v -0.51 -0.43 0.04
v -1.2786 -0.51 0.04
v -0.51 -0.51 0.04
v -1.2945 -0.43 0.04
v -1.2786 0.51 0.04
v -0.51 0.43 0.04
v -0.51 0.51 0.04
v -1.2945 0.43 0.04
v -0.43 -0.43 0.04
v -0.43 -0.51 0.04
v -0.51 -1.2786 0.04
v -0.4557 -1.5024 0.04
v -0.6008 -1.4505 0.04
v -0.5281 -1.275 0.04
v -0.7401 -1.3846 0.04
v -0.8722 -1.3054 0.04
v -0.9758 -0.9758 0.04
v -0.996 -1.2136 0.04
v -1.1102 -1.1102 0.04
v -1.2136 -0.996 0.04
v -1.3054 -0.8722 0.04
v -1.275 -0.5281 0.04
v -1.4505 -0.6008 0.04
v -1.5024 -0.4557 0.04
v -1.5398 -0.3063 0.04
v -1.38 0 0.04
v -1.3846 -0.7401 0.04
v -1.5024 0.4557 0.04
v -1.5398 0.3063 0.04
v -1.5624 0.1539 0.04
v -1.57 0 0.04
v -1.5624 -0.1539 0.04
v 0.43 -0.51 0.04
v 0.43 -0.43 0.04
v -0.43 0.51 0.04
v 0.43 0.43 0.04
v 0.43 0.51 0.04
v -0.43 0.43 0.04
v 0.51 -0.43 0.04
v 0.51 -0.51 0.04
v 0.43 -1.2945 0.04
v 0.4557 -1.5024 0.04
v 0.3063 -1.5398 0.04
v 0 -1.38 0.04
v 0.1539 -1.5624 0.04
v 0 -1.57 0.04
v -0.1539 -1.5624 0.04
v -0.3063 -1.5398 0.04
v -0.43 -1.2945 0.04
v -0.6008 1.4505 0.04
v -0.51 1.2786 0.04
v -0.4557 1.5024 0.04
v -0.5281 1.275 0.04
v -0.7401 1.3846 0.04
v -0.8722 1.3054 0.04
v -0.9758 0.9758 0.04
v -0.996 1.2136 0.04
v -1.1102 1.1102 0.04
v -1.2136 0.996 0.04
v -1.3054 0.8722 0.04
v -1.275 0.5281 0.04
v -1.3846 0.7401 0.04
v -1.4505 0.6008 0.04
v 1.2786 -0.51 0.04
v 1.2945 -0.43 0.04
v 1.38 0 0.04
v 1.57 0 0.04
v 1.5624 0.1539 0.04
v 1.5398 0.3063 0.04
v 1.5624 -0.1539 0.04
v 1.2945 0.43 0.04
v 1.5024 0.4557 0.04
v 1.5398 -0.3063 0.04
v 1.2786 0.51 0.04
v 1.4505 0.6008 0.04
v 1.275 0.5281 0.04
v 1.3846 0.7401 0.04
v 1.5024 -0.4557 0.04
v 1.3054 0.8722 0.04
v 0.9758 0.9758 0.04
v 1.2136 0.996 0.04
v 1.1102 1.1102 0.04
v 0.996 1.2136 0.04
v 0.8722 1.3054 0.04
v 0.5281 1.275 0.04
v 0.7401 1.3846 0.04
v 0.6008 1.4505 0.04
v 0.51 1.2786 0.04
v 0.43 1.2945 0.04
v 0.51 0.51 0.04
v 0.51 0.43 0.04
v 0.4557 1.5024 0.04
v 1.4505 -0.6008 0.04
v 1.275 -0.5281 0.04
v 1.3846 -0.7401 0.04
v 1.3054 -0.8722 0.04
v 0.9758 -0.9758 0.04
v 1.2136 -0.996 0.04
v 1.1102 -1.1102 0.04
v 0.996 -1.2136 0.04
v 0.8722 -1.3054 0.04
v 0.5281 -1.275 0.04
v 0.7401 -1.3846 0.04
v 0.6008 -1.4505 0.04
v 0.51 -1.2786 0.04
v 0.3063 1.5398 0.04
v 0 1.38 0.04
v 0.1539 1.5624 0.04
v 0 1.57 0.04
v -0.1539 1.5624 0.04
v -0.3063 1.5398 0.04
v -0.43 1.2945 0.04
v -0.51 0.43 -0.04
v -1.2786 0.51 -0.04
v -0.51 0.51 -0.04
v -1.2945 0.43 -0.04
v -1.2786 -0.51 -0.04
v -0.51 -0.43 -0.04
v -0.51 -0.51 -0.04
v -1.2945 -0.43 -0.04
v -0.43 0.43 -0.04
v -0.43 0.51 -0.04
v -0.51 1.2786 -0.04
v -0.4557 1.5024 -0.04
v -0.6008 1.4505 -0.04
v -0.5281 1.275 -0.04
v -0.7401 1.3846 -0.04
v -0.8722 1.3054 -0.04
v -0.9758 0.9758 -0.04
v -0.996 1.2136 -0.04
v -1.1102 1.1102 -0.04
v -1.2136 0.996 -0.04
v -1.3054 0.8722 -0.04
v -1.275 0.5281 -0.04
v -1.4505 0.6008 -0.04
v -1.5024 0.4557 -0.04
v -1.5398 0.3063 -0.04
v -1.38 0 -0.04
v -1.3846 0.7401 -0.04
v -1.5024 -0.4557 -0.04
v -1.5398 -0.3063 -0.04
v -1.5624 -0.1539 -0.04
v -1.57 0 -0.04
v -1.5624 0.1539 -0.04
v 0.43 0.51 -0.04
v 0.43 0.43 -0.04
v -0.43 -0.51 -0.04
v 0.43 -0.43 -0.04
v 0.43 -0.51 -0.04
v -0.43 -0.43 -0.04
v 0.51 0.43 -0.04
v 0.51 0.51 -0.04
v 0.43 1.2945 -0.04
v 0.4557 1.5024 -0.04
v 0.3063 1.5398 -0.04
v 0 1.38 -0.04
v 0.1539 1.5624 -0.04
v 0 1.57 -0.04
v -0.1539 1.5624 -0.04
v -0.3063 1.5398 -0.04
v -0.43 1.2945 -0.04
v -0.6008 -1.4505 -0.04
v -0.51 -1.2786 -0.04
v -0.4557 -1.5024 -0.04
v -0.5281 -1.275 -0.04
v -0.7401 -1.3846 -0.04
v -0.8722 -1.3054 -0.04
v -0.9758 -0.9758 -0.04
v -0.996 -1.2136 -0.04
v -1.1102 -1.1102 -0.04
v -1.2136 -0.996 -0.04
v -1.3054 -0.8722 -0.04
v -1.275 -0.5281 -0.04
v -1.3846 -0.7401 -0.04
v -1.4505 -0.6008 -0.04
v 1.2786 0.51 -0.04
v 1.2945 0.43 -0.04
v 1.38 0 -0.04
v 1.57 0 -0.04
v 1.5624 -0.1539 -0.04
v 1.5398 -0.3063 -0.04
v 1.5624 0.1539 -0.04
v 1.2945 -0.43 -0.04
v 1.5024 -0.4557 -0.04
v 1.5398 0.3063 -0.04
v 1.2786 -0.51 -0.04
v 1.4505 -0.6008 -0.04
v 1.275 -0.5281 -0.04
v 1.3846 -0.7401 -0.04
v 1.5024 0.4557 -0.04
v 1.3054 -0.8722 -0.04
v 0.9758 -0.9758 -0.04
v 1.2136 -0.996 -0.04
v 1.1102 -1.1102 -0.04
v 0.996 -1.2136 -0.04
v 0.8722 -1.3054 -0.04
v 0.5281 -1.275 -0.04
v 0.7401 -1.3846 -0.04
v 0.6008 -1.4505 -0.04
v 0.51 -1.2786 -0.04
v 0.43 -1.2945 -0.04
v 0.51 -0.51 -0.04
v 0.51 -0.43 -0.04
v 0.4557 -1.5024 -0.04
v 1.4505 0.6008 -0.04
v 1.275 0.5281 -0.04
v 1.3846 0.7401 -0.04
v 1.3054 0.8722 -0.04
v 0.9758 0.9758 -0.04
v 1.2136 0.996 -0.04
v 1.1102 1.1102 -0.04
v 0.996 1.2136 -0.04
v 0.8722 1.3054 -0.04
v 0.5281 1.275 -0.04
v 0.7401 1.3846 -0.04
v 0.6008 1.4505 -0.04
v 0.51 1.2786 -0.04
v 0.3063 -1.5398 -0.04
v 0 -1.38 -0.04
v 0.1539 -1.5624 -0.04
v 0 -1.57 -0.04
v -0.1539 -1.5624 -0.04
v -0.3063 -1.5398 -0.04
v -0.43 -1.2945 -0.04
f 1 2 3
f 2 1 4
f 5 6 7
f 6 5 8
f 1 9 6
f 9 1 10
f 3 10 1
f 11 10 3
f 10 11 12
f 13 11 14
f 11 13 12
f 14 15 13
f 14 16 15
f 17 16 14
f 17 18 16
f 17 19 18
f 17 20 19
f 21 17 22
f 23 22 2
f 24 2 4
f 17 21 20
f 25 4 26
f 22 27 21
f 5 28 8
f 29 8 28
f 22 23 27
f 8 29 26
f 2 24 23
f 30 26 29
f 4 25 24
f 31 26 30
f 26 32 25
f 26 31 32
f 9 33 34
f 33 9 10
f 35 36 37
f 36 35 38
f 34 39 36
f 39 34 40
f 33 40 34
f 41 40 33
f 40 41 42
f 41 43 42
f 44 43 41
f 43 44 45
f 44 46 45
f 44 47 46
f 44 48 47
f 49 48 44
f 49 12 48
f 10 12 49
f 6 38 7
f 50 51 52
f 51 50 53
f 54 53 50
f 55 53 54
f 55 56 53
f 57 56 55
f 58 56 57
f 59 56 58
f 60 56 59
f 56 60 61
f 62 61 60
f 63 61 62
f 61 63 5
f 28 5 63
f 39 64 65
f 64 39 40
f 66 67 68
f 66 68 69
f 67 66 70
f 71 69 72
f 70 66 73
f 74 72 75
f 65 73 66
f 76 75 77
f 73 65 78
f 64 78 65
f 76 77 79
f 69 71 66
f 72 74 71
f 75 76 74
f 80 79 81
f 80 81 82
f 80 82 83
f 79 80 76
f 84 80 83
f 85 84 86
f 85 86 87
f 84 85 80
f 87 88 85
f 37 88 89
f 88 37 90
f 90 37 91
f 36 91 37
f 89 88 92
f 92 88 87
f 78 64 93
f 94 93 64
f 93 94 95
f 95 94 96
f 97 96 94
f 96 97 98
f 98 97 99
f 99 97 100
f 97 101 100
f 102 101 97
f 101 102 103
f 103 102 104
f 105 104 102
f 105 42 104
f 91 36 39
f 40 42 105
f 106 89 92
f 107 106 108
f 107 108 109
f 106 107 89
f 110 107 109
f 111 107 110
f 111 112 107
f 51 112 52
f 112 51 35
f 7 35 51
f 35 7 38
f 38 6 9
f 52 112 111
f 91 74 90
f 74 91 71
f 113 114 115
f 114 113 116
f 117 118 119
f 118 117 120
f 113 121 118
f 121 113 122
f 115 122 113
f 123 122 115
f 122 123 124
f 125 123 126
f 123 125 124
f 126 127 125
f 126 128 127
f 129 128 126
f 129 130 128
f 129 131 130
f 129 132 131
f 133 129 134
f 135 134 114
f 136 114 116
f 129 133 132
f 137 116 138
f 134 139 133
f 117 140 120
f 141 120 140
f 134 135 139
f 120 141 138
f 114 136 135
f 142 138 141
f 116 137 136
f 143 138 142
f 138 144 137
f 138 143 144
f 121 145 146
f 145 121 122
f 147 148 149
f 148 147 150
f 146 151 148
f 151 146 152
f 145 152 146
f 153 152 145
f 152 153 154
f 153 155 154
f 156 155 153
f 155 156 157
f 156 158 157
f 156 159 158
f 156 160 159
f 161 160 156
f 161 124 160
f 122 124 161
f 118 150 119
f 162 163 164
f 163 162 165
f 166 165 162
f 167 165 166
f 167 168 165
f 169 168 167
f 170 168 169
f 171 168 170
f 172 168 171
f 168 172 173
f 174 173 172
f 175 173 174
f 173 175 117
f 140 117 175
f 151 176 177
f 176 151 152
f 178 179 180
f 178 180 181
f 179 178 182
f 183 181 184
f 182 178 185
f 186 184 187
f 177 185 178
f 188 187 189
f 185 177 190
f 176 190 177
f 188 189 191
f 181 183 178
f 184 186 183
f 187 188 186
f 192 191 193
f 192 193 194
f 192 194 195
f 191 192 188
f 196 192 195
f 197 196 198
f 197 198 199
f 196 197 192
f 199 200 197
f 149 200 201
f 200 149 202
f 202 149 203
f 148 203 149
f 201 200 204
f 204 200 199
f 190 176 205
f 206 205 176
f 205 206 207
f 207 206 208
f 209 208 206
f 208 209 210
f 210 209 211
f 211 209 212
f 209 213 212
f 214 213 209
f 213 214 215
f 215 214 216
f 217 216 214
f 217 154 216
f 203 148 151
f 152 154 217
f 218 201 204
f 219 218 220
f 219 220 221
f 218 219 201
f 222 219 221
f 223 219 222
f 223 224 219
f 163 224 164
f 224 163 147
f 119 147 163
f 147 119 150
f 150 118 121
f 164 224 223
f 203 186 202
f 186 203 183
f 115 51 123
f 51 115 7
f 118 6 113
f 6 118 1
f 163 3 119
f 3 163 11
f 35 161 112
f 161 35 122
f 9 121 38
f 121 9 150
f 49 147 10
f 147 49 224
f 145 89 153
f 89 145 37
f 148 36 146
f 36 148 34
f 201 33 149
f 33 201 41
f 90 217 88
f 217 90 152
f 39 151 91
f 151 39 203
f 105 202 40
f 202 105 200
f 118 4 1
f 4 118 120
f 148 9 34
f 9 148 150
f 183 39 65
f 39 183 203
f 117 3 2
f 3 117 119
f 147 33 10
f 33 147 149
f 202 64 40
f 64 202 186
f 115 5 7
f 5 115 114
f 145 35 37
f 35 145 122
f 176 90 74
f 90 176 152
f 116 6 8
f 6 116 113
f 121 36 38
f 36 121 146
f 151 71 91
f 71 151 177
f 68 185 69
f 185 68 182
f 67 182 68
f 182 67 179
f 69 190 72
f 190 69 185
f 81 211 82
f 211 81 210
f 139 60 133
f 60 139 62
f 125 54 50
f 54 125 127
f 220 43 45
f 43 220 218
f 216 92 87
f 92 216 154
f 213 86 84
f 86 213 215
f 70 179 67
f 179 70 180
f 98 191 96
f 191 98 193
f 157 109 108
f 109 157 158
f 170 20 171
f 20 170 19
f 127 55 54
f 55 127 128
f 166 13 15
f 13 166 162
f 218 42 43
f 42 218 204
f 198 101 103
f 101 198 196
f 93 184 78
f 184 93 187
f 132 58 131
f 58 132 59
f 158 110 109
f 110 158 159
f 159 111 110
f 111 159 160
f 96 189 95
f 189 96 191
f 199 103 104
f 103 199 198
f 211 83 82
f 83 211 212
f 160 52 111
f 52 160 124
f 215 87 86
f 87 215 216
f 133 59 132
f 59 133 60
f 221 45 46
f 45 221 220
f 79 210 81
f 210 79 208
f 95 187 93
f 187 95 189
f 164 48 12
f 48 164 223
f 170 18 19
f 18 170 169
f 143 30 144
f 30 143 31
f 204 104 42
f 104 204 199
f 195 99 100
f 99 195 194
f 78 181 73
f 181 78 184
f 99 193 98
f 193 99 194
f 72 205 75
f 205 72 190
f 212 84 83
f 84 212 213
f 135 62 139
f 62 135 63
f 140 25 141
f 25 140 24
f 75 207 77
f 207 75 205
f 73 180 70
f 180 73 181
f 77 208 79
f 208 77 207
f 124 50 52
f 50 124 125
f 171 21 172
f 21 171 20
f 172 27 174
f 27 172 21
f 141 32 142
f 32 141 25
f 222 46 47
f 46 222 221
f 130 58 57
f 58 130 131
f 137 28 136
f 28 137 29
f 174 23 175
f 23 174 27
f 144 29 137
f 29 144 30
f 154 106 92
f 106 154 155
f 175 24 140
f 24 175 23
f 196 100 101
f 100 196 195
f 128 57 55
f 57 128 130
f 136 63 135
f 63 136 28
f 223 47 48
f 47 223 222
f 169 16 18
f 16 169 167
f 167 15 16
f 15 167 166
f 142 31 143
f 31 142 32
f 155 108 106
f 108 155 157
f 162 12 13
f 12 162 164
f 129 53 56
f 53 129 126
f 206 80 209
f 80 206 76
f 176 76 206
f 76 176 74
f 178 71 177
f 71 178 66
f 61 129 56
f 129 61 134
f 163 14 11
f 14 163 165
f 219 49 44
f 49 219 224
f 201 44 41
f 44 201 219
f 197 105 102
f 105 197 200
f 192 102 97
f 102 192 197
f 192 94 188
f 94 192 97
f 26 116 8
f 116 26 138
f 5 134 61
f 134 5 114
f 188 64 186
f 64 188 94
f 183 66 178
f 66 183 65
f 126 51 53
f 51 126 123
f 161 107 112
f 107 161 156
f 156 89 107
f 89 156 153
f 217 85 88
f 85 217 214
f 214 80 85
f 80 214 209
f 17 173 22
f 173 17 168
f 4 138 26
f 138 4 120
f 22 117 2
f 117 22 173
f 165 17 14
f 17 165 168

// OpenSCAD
//Module filter
 //All parameters are in inches

//round cylinder of the filter
difference(){    
   //Outside the filter
    cylinder(h = 0.08, r = 1.57,center = true, $fn=64);
  //Inside the filter
    cylinder(h = 0.79, r = 1.38, center = true, $fn=16);
}//end of the filter


//crossing rods of the filter
union(){
    translate([0,-0.47,0]){
    cube([2.76,0.08,0.08], center = true);}
    translate([0,0.47,0]){
    cube([2.76,0.08,0.08], center = true);}
    rotate([0,0,90]){
    translate([0,0.47,0]){
    cube([2.76,0.08,0.08], center = true);
     }
         translate([0,-0.47,0]){
    cube([2.76,0.08,0.08], center = true);
      }
        }
    }
        
